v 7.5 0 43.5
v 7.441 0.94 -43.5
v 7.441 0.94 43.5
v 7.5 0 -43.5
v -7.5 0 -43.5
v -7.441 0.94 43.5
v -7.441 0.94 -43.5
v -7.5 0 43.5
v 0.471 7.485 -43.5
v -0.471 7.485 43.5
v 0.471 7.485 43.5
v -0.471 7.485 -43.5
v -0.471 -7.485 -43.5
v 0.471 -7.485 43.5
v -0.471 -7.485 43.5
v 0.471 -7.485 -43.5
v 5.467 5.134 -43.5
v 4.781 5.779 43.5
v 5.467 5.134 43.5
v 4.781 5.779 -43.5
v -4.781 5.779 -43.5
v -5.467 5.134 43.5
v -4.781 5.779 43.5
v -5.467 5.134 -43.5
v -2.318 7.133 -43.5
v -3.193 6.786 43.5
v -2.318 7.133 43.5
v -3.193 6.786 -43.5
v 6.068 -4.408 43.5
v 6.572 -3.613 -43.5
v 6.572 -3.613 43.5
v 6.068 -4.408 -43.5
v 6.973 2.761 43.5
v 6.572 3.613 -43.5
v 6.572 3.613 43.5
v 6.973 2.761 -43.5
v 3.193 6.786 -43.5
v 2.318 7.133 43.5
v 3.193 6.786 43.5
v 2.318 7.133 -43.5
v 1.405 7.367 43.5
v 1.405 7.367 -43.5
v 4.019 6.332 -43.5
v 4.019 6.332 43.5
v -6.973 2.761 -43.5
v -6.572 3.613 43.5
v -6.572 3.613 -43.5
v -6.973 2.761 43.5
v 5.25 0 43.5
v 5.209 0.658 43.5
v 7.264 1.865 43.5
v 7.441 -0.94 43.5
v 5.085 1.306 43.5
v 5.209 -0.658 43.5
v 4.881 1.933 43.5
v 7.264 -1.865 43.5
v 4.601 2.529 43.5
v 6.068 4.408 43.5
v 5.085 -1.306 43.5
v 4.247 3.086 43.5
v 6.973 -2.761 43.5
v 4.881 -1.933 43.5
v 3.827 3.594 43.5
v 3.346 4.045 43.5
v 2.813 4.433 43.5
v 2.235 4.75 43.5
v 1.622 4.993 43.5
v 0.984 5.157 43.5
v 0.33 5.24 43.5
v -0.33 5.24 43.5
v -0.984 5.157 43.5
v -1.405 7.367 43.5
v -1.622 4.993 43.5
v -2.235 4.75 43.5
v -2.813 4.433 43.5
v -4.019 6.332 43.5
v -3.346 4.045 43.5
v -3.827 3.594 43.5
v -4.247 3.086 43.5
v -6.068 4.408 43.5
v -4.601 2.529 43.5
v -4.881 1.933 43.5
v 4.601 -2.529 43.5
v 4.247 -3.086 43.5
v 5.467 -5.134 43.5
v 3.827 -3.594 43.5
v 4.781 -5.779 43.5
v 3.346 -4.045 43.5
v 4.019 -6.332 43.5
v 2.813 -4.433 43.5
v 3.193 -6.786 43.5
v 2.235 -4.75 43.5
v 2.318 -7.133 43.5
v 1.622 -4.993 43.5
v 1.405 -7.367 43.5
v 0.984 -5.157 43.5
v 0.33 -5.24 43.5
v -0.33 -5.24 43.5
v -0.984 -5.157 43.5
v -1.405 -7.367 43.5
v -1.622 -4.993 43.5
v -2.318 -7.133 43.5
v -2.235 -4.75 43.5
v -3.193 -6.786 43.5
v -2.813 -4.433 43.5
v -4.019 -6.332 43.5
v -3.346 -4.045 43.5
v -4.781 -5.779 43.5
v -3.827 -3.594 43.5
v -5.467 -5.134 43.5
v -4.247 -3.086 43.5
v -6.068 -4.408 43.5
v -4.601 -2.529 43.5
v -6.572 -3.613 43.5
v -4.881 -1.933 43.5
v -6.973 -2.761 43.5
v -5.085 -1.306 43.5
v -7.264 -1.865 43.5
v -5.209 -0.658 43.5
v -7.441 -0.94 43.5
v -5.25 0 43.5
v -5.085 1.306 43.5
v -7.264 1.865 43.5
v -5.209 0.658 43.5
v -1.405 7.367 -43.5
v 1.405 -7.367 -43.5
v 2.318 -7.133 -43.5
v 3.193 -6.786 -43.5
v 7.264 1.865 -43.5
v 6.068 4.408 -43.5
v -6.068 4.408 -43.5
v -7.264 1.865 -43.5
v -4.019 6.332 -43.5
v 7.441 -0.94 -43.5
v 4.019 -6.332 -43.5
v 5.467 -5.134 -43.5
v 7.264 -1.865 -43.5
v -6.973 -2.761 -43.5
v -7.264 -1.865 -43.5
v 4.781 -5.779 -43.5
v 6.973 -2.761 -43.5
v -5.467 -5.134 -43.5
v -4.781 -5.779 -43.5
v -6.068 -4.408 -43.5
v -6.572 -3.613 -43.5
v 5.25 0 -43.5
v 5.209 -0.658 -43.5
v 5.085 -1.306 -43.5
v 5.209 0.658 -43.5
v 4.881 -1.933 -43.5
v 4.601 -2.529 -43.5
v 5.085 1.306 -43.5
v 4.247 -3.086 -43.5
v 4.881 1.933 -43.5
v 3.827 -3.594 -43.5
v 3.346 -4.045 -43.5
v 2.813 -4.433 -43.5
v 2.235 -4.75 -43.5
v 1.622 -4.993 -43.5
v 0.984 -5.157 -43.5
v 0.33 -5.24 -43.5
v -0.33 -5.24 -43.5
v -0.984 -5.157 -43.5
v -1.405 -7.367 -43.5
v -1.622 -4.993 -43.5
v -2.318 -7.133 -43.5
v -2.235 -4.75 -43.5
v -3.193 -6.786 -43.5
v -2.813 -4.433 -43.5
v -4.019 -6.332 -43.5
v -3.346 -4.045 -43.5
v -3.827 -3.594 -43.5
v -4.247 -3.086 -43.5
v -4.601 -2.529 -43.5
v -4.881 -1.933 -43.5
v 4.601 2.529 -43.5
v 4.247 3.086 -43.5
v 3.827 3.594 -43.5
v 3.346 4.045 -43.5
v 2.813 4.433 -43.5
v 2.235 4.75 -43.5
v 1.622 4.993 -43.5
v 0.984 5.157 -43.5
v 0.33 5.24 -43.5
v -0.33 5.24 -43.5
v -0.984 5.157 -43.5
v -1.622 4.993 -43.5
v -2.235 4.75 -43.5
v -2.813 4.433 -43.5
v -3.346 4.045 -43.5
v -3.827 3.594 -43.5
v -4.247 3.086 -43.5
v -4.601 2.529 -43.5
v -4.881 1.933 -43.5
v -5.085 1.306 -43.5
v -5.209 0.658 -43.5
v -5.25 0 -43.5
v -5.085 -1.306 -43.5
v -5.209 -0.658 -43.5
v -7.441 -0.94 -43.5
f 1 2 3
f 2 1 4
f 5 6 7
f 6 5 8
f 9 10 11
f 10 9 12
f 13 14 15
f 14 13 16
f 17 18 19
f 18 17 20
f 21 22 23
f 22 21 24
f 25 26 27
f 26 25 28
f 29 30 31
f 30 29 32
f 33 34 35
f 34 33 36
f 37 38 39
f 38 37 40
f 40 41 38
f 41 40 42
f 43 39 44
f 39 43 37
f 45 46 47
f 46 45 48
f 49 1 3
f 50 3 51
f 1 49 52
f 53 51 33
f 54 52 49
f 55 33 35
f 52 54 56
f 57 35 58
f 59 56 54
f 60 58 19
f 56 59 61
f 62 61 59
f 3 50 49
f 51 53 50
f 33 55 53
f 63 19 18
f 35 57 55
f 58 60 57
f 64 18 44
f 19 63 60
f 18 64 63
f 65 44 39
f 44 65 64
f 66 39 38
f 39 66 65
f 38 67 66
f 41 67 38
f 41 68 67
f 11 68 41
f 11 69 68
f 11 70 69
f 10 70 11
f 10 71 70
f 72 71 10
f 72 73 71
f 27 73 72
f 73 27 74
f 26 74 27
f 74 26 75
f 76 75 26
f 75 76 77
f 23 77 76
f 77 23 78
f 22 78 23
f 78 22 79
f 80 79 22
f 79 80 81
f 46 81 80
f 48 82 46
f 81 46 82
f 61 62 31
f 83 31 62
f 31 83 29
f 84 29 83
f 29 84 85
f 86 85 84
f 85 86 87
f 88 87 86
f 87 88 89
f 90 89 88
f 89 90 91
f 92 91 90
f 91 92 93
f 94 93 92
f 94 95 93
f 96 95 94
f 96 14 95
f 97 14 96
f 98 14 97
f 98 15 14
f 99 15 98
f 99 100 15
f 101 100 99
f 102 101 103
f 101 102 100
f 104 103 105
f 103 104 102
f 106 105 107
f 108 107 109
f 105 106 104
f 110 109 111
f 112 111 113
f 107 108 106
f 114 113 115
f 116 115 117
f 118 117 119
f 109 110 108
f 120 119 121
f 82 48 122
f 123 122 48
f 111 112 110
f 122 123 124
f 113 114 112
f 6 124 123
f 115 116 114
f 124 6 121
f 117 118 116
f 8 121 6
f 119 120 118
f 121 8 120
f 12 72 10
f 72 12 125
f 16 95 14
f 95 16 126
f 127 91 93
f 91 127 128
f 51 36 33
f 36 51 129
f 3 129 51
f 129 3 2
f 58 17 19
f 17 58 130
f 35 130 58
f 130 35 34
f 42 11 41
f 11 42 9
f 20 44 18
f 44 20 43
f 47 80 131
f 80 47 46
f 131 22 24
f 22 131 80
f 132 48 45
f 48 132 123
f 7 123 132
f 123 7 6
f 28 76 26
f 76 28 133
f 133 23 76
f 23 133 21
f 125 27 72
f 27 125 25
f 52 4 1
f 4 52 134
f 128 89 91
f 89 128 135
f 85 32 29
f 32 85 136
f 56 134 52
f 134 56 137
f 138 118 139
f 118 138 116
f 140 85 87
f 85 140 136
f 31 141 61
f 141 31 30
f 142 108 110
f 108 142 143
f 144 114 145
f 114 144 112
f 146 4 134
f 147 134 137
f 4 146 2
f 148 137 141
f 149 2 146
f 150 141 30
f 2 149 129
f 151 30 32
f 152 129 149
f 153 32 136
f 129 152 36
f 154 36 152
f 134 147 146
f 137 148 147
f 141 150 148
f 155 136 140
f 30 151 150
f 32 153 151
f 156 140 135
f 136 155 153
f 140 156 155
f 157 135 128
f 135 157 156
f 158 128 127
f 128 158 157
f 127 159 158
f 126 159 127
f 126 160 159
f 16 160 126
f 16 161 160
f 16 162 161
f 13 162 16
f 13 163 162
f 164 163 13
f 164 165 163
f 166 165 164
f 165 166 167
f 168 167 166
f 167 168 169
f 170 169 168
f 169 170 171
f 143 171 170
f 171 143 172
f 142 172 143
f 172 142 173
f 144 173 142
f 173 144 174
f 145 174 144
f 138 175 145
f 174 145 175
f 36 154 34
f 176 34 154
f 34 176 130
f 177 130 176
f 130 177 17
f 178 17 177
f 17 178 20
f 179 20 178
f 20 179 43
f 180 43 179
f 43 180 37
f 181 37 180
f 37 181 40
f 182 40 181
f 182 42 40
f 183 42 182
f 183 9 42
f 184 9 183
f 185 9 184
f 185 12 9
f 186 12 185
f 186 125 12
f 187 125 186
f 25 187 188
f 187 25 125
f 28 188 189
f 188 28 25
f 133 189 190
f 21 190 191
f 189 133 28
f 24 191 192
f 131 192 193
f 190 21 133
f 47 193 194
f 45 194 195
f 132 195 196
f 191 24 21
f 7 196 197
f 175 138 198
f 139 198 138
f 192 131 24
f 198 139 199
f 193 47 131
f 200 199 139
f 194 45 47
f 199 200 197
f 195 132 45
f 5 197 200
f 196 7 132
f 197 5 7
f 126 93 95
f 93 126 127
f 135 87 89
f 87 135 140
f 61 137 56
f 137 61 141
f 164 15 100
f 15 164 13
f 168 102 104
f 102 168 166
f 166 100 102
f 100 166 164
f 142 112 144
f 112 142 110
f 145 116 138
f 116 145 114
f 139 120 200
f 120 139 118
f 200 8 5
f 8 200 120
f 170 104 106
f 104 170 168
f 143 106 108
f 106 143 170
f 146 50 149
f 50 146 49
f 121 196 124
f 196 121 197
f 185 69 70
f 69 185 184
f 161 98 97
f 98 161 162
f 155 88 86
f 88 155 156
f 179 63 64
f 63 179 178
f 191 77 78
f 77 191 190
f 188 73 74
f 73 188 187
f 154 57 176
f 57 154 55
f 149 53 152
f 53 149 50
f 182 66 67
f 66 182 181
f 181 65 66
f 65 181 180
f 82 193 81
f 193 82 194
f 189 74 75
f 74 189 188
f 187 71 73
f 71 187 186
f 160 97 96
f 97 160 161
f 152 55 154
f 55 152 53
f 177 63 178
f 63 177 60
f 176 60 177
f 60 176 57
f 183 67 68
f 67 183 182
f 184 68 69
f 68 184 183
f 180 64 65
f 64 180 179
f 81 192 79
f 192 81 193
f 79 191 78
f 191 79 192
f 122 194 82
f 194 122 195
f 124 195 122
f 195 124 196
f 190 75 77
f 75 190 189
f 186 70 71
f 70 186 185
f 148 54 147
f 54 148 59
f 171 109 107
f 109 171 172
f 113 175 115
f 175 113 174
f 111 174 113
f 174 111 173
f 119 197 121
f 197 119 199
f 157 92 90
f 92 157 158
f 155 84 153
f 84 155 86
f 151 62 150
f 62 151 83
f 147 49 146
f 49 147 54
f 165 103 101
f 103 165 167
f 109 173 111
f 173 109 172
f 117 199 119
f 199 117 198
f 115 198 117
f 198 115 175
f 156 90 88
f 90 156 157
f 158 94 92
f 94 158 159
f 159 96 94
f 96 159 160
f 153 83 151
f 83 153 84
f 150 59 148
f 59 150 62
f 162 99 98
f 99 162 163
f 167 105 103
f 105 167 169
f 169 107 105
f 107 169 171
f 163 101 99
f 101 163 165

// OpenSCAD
$fn = 50;


difference() {
	union() {
		translate(v = [0, 0, -43.5000000000]) {
			cylinder(h = 87, r = 7.5000000000);
		}
	}
	union() {
		translate(v = [0, 0, -100.0000000000]) {
			cylinder(h = 200, r = 5.2500000000);
		}
	}
}
